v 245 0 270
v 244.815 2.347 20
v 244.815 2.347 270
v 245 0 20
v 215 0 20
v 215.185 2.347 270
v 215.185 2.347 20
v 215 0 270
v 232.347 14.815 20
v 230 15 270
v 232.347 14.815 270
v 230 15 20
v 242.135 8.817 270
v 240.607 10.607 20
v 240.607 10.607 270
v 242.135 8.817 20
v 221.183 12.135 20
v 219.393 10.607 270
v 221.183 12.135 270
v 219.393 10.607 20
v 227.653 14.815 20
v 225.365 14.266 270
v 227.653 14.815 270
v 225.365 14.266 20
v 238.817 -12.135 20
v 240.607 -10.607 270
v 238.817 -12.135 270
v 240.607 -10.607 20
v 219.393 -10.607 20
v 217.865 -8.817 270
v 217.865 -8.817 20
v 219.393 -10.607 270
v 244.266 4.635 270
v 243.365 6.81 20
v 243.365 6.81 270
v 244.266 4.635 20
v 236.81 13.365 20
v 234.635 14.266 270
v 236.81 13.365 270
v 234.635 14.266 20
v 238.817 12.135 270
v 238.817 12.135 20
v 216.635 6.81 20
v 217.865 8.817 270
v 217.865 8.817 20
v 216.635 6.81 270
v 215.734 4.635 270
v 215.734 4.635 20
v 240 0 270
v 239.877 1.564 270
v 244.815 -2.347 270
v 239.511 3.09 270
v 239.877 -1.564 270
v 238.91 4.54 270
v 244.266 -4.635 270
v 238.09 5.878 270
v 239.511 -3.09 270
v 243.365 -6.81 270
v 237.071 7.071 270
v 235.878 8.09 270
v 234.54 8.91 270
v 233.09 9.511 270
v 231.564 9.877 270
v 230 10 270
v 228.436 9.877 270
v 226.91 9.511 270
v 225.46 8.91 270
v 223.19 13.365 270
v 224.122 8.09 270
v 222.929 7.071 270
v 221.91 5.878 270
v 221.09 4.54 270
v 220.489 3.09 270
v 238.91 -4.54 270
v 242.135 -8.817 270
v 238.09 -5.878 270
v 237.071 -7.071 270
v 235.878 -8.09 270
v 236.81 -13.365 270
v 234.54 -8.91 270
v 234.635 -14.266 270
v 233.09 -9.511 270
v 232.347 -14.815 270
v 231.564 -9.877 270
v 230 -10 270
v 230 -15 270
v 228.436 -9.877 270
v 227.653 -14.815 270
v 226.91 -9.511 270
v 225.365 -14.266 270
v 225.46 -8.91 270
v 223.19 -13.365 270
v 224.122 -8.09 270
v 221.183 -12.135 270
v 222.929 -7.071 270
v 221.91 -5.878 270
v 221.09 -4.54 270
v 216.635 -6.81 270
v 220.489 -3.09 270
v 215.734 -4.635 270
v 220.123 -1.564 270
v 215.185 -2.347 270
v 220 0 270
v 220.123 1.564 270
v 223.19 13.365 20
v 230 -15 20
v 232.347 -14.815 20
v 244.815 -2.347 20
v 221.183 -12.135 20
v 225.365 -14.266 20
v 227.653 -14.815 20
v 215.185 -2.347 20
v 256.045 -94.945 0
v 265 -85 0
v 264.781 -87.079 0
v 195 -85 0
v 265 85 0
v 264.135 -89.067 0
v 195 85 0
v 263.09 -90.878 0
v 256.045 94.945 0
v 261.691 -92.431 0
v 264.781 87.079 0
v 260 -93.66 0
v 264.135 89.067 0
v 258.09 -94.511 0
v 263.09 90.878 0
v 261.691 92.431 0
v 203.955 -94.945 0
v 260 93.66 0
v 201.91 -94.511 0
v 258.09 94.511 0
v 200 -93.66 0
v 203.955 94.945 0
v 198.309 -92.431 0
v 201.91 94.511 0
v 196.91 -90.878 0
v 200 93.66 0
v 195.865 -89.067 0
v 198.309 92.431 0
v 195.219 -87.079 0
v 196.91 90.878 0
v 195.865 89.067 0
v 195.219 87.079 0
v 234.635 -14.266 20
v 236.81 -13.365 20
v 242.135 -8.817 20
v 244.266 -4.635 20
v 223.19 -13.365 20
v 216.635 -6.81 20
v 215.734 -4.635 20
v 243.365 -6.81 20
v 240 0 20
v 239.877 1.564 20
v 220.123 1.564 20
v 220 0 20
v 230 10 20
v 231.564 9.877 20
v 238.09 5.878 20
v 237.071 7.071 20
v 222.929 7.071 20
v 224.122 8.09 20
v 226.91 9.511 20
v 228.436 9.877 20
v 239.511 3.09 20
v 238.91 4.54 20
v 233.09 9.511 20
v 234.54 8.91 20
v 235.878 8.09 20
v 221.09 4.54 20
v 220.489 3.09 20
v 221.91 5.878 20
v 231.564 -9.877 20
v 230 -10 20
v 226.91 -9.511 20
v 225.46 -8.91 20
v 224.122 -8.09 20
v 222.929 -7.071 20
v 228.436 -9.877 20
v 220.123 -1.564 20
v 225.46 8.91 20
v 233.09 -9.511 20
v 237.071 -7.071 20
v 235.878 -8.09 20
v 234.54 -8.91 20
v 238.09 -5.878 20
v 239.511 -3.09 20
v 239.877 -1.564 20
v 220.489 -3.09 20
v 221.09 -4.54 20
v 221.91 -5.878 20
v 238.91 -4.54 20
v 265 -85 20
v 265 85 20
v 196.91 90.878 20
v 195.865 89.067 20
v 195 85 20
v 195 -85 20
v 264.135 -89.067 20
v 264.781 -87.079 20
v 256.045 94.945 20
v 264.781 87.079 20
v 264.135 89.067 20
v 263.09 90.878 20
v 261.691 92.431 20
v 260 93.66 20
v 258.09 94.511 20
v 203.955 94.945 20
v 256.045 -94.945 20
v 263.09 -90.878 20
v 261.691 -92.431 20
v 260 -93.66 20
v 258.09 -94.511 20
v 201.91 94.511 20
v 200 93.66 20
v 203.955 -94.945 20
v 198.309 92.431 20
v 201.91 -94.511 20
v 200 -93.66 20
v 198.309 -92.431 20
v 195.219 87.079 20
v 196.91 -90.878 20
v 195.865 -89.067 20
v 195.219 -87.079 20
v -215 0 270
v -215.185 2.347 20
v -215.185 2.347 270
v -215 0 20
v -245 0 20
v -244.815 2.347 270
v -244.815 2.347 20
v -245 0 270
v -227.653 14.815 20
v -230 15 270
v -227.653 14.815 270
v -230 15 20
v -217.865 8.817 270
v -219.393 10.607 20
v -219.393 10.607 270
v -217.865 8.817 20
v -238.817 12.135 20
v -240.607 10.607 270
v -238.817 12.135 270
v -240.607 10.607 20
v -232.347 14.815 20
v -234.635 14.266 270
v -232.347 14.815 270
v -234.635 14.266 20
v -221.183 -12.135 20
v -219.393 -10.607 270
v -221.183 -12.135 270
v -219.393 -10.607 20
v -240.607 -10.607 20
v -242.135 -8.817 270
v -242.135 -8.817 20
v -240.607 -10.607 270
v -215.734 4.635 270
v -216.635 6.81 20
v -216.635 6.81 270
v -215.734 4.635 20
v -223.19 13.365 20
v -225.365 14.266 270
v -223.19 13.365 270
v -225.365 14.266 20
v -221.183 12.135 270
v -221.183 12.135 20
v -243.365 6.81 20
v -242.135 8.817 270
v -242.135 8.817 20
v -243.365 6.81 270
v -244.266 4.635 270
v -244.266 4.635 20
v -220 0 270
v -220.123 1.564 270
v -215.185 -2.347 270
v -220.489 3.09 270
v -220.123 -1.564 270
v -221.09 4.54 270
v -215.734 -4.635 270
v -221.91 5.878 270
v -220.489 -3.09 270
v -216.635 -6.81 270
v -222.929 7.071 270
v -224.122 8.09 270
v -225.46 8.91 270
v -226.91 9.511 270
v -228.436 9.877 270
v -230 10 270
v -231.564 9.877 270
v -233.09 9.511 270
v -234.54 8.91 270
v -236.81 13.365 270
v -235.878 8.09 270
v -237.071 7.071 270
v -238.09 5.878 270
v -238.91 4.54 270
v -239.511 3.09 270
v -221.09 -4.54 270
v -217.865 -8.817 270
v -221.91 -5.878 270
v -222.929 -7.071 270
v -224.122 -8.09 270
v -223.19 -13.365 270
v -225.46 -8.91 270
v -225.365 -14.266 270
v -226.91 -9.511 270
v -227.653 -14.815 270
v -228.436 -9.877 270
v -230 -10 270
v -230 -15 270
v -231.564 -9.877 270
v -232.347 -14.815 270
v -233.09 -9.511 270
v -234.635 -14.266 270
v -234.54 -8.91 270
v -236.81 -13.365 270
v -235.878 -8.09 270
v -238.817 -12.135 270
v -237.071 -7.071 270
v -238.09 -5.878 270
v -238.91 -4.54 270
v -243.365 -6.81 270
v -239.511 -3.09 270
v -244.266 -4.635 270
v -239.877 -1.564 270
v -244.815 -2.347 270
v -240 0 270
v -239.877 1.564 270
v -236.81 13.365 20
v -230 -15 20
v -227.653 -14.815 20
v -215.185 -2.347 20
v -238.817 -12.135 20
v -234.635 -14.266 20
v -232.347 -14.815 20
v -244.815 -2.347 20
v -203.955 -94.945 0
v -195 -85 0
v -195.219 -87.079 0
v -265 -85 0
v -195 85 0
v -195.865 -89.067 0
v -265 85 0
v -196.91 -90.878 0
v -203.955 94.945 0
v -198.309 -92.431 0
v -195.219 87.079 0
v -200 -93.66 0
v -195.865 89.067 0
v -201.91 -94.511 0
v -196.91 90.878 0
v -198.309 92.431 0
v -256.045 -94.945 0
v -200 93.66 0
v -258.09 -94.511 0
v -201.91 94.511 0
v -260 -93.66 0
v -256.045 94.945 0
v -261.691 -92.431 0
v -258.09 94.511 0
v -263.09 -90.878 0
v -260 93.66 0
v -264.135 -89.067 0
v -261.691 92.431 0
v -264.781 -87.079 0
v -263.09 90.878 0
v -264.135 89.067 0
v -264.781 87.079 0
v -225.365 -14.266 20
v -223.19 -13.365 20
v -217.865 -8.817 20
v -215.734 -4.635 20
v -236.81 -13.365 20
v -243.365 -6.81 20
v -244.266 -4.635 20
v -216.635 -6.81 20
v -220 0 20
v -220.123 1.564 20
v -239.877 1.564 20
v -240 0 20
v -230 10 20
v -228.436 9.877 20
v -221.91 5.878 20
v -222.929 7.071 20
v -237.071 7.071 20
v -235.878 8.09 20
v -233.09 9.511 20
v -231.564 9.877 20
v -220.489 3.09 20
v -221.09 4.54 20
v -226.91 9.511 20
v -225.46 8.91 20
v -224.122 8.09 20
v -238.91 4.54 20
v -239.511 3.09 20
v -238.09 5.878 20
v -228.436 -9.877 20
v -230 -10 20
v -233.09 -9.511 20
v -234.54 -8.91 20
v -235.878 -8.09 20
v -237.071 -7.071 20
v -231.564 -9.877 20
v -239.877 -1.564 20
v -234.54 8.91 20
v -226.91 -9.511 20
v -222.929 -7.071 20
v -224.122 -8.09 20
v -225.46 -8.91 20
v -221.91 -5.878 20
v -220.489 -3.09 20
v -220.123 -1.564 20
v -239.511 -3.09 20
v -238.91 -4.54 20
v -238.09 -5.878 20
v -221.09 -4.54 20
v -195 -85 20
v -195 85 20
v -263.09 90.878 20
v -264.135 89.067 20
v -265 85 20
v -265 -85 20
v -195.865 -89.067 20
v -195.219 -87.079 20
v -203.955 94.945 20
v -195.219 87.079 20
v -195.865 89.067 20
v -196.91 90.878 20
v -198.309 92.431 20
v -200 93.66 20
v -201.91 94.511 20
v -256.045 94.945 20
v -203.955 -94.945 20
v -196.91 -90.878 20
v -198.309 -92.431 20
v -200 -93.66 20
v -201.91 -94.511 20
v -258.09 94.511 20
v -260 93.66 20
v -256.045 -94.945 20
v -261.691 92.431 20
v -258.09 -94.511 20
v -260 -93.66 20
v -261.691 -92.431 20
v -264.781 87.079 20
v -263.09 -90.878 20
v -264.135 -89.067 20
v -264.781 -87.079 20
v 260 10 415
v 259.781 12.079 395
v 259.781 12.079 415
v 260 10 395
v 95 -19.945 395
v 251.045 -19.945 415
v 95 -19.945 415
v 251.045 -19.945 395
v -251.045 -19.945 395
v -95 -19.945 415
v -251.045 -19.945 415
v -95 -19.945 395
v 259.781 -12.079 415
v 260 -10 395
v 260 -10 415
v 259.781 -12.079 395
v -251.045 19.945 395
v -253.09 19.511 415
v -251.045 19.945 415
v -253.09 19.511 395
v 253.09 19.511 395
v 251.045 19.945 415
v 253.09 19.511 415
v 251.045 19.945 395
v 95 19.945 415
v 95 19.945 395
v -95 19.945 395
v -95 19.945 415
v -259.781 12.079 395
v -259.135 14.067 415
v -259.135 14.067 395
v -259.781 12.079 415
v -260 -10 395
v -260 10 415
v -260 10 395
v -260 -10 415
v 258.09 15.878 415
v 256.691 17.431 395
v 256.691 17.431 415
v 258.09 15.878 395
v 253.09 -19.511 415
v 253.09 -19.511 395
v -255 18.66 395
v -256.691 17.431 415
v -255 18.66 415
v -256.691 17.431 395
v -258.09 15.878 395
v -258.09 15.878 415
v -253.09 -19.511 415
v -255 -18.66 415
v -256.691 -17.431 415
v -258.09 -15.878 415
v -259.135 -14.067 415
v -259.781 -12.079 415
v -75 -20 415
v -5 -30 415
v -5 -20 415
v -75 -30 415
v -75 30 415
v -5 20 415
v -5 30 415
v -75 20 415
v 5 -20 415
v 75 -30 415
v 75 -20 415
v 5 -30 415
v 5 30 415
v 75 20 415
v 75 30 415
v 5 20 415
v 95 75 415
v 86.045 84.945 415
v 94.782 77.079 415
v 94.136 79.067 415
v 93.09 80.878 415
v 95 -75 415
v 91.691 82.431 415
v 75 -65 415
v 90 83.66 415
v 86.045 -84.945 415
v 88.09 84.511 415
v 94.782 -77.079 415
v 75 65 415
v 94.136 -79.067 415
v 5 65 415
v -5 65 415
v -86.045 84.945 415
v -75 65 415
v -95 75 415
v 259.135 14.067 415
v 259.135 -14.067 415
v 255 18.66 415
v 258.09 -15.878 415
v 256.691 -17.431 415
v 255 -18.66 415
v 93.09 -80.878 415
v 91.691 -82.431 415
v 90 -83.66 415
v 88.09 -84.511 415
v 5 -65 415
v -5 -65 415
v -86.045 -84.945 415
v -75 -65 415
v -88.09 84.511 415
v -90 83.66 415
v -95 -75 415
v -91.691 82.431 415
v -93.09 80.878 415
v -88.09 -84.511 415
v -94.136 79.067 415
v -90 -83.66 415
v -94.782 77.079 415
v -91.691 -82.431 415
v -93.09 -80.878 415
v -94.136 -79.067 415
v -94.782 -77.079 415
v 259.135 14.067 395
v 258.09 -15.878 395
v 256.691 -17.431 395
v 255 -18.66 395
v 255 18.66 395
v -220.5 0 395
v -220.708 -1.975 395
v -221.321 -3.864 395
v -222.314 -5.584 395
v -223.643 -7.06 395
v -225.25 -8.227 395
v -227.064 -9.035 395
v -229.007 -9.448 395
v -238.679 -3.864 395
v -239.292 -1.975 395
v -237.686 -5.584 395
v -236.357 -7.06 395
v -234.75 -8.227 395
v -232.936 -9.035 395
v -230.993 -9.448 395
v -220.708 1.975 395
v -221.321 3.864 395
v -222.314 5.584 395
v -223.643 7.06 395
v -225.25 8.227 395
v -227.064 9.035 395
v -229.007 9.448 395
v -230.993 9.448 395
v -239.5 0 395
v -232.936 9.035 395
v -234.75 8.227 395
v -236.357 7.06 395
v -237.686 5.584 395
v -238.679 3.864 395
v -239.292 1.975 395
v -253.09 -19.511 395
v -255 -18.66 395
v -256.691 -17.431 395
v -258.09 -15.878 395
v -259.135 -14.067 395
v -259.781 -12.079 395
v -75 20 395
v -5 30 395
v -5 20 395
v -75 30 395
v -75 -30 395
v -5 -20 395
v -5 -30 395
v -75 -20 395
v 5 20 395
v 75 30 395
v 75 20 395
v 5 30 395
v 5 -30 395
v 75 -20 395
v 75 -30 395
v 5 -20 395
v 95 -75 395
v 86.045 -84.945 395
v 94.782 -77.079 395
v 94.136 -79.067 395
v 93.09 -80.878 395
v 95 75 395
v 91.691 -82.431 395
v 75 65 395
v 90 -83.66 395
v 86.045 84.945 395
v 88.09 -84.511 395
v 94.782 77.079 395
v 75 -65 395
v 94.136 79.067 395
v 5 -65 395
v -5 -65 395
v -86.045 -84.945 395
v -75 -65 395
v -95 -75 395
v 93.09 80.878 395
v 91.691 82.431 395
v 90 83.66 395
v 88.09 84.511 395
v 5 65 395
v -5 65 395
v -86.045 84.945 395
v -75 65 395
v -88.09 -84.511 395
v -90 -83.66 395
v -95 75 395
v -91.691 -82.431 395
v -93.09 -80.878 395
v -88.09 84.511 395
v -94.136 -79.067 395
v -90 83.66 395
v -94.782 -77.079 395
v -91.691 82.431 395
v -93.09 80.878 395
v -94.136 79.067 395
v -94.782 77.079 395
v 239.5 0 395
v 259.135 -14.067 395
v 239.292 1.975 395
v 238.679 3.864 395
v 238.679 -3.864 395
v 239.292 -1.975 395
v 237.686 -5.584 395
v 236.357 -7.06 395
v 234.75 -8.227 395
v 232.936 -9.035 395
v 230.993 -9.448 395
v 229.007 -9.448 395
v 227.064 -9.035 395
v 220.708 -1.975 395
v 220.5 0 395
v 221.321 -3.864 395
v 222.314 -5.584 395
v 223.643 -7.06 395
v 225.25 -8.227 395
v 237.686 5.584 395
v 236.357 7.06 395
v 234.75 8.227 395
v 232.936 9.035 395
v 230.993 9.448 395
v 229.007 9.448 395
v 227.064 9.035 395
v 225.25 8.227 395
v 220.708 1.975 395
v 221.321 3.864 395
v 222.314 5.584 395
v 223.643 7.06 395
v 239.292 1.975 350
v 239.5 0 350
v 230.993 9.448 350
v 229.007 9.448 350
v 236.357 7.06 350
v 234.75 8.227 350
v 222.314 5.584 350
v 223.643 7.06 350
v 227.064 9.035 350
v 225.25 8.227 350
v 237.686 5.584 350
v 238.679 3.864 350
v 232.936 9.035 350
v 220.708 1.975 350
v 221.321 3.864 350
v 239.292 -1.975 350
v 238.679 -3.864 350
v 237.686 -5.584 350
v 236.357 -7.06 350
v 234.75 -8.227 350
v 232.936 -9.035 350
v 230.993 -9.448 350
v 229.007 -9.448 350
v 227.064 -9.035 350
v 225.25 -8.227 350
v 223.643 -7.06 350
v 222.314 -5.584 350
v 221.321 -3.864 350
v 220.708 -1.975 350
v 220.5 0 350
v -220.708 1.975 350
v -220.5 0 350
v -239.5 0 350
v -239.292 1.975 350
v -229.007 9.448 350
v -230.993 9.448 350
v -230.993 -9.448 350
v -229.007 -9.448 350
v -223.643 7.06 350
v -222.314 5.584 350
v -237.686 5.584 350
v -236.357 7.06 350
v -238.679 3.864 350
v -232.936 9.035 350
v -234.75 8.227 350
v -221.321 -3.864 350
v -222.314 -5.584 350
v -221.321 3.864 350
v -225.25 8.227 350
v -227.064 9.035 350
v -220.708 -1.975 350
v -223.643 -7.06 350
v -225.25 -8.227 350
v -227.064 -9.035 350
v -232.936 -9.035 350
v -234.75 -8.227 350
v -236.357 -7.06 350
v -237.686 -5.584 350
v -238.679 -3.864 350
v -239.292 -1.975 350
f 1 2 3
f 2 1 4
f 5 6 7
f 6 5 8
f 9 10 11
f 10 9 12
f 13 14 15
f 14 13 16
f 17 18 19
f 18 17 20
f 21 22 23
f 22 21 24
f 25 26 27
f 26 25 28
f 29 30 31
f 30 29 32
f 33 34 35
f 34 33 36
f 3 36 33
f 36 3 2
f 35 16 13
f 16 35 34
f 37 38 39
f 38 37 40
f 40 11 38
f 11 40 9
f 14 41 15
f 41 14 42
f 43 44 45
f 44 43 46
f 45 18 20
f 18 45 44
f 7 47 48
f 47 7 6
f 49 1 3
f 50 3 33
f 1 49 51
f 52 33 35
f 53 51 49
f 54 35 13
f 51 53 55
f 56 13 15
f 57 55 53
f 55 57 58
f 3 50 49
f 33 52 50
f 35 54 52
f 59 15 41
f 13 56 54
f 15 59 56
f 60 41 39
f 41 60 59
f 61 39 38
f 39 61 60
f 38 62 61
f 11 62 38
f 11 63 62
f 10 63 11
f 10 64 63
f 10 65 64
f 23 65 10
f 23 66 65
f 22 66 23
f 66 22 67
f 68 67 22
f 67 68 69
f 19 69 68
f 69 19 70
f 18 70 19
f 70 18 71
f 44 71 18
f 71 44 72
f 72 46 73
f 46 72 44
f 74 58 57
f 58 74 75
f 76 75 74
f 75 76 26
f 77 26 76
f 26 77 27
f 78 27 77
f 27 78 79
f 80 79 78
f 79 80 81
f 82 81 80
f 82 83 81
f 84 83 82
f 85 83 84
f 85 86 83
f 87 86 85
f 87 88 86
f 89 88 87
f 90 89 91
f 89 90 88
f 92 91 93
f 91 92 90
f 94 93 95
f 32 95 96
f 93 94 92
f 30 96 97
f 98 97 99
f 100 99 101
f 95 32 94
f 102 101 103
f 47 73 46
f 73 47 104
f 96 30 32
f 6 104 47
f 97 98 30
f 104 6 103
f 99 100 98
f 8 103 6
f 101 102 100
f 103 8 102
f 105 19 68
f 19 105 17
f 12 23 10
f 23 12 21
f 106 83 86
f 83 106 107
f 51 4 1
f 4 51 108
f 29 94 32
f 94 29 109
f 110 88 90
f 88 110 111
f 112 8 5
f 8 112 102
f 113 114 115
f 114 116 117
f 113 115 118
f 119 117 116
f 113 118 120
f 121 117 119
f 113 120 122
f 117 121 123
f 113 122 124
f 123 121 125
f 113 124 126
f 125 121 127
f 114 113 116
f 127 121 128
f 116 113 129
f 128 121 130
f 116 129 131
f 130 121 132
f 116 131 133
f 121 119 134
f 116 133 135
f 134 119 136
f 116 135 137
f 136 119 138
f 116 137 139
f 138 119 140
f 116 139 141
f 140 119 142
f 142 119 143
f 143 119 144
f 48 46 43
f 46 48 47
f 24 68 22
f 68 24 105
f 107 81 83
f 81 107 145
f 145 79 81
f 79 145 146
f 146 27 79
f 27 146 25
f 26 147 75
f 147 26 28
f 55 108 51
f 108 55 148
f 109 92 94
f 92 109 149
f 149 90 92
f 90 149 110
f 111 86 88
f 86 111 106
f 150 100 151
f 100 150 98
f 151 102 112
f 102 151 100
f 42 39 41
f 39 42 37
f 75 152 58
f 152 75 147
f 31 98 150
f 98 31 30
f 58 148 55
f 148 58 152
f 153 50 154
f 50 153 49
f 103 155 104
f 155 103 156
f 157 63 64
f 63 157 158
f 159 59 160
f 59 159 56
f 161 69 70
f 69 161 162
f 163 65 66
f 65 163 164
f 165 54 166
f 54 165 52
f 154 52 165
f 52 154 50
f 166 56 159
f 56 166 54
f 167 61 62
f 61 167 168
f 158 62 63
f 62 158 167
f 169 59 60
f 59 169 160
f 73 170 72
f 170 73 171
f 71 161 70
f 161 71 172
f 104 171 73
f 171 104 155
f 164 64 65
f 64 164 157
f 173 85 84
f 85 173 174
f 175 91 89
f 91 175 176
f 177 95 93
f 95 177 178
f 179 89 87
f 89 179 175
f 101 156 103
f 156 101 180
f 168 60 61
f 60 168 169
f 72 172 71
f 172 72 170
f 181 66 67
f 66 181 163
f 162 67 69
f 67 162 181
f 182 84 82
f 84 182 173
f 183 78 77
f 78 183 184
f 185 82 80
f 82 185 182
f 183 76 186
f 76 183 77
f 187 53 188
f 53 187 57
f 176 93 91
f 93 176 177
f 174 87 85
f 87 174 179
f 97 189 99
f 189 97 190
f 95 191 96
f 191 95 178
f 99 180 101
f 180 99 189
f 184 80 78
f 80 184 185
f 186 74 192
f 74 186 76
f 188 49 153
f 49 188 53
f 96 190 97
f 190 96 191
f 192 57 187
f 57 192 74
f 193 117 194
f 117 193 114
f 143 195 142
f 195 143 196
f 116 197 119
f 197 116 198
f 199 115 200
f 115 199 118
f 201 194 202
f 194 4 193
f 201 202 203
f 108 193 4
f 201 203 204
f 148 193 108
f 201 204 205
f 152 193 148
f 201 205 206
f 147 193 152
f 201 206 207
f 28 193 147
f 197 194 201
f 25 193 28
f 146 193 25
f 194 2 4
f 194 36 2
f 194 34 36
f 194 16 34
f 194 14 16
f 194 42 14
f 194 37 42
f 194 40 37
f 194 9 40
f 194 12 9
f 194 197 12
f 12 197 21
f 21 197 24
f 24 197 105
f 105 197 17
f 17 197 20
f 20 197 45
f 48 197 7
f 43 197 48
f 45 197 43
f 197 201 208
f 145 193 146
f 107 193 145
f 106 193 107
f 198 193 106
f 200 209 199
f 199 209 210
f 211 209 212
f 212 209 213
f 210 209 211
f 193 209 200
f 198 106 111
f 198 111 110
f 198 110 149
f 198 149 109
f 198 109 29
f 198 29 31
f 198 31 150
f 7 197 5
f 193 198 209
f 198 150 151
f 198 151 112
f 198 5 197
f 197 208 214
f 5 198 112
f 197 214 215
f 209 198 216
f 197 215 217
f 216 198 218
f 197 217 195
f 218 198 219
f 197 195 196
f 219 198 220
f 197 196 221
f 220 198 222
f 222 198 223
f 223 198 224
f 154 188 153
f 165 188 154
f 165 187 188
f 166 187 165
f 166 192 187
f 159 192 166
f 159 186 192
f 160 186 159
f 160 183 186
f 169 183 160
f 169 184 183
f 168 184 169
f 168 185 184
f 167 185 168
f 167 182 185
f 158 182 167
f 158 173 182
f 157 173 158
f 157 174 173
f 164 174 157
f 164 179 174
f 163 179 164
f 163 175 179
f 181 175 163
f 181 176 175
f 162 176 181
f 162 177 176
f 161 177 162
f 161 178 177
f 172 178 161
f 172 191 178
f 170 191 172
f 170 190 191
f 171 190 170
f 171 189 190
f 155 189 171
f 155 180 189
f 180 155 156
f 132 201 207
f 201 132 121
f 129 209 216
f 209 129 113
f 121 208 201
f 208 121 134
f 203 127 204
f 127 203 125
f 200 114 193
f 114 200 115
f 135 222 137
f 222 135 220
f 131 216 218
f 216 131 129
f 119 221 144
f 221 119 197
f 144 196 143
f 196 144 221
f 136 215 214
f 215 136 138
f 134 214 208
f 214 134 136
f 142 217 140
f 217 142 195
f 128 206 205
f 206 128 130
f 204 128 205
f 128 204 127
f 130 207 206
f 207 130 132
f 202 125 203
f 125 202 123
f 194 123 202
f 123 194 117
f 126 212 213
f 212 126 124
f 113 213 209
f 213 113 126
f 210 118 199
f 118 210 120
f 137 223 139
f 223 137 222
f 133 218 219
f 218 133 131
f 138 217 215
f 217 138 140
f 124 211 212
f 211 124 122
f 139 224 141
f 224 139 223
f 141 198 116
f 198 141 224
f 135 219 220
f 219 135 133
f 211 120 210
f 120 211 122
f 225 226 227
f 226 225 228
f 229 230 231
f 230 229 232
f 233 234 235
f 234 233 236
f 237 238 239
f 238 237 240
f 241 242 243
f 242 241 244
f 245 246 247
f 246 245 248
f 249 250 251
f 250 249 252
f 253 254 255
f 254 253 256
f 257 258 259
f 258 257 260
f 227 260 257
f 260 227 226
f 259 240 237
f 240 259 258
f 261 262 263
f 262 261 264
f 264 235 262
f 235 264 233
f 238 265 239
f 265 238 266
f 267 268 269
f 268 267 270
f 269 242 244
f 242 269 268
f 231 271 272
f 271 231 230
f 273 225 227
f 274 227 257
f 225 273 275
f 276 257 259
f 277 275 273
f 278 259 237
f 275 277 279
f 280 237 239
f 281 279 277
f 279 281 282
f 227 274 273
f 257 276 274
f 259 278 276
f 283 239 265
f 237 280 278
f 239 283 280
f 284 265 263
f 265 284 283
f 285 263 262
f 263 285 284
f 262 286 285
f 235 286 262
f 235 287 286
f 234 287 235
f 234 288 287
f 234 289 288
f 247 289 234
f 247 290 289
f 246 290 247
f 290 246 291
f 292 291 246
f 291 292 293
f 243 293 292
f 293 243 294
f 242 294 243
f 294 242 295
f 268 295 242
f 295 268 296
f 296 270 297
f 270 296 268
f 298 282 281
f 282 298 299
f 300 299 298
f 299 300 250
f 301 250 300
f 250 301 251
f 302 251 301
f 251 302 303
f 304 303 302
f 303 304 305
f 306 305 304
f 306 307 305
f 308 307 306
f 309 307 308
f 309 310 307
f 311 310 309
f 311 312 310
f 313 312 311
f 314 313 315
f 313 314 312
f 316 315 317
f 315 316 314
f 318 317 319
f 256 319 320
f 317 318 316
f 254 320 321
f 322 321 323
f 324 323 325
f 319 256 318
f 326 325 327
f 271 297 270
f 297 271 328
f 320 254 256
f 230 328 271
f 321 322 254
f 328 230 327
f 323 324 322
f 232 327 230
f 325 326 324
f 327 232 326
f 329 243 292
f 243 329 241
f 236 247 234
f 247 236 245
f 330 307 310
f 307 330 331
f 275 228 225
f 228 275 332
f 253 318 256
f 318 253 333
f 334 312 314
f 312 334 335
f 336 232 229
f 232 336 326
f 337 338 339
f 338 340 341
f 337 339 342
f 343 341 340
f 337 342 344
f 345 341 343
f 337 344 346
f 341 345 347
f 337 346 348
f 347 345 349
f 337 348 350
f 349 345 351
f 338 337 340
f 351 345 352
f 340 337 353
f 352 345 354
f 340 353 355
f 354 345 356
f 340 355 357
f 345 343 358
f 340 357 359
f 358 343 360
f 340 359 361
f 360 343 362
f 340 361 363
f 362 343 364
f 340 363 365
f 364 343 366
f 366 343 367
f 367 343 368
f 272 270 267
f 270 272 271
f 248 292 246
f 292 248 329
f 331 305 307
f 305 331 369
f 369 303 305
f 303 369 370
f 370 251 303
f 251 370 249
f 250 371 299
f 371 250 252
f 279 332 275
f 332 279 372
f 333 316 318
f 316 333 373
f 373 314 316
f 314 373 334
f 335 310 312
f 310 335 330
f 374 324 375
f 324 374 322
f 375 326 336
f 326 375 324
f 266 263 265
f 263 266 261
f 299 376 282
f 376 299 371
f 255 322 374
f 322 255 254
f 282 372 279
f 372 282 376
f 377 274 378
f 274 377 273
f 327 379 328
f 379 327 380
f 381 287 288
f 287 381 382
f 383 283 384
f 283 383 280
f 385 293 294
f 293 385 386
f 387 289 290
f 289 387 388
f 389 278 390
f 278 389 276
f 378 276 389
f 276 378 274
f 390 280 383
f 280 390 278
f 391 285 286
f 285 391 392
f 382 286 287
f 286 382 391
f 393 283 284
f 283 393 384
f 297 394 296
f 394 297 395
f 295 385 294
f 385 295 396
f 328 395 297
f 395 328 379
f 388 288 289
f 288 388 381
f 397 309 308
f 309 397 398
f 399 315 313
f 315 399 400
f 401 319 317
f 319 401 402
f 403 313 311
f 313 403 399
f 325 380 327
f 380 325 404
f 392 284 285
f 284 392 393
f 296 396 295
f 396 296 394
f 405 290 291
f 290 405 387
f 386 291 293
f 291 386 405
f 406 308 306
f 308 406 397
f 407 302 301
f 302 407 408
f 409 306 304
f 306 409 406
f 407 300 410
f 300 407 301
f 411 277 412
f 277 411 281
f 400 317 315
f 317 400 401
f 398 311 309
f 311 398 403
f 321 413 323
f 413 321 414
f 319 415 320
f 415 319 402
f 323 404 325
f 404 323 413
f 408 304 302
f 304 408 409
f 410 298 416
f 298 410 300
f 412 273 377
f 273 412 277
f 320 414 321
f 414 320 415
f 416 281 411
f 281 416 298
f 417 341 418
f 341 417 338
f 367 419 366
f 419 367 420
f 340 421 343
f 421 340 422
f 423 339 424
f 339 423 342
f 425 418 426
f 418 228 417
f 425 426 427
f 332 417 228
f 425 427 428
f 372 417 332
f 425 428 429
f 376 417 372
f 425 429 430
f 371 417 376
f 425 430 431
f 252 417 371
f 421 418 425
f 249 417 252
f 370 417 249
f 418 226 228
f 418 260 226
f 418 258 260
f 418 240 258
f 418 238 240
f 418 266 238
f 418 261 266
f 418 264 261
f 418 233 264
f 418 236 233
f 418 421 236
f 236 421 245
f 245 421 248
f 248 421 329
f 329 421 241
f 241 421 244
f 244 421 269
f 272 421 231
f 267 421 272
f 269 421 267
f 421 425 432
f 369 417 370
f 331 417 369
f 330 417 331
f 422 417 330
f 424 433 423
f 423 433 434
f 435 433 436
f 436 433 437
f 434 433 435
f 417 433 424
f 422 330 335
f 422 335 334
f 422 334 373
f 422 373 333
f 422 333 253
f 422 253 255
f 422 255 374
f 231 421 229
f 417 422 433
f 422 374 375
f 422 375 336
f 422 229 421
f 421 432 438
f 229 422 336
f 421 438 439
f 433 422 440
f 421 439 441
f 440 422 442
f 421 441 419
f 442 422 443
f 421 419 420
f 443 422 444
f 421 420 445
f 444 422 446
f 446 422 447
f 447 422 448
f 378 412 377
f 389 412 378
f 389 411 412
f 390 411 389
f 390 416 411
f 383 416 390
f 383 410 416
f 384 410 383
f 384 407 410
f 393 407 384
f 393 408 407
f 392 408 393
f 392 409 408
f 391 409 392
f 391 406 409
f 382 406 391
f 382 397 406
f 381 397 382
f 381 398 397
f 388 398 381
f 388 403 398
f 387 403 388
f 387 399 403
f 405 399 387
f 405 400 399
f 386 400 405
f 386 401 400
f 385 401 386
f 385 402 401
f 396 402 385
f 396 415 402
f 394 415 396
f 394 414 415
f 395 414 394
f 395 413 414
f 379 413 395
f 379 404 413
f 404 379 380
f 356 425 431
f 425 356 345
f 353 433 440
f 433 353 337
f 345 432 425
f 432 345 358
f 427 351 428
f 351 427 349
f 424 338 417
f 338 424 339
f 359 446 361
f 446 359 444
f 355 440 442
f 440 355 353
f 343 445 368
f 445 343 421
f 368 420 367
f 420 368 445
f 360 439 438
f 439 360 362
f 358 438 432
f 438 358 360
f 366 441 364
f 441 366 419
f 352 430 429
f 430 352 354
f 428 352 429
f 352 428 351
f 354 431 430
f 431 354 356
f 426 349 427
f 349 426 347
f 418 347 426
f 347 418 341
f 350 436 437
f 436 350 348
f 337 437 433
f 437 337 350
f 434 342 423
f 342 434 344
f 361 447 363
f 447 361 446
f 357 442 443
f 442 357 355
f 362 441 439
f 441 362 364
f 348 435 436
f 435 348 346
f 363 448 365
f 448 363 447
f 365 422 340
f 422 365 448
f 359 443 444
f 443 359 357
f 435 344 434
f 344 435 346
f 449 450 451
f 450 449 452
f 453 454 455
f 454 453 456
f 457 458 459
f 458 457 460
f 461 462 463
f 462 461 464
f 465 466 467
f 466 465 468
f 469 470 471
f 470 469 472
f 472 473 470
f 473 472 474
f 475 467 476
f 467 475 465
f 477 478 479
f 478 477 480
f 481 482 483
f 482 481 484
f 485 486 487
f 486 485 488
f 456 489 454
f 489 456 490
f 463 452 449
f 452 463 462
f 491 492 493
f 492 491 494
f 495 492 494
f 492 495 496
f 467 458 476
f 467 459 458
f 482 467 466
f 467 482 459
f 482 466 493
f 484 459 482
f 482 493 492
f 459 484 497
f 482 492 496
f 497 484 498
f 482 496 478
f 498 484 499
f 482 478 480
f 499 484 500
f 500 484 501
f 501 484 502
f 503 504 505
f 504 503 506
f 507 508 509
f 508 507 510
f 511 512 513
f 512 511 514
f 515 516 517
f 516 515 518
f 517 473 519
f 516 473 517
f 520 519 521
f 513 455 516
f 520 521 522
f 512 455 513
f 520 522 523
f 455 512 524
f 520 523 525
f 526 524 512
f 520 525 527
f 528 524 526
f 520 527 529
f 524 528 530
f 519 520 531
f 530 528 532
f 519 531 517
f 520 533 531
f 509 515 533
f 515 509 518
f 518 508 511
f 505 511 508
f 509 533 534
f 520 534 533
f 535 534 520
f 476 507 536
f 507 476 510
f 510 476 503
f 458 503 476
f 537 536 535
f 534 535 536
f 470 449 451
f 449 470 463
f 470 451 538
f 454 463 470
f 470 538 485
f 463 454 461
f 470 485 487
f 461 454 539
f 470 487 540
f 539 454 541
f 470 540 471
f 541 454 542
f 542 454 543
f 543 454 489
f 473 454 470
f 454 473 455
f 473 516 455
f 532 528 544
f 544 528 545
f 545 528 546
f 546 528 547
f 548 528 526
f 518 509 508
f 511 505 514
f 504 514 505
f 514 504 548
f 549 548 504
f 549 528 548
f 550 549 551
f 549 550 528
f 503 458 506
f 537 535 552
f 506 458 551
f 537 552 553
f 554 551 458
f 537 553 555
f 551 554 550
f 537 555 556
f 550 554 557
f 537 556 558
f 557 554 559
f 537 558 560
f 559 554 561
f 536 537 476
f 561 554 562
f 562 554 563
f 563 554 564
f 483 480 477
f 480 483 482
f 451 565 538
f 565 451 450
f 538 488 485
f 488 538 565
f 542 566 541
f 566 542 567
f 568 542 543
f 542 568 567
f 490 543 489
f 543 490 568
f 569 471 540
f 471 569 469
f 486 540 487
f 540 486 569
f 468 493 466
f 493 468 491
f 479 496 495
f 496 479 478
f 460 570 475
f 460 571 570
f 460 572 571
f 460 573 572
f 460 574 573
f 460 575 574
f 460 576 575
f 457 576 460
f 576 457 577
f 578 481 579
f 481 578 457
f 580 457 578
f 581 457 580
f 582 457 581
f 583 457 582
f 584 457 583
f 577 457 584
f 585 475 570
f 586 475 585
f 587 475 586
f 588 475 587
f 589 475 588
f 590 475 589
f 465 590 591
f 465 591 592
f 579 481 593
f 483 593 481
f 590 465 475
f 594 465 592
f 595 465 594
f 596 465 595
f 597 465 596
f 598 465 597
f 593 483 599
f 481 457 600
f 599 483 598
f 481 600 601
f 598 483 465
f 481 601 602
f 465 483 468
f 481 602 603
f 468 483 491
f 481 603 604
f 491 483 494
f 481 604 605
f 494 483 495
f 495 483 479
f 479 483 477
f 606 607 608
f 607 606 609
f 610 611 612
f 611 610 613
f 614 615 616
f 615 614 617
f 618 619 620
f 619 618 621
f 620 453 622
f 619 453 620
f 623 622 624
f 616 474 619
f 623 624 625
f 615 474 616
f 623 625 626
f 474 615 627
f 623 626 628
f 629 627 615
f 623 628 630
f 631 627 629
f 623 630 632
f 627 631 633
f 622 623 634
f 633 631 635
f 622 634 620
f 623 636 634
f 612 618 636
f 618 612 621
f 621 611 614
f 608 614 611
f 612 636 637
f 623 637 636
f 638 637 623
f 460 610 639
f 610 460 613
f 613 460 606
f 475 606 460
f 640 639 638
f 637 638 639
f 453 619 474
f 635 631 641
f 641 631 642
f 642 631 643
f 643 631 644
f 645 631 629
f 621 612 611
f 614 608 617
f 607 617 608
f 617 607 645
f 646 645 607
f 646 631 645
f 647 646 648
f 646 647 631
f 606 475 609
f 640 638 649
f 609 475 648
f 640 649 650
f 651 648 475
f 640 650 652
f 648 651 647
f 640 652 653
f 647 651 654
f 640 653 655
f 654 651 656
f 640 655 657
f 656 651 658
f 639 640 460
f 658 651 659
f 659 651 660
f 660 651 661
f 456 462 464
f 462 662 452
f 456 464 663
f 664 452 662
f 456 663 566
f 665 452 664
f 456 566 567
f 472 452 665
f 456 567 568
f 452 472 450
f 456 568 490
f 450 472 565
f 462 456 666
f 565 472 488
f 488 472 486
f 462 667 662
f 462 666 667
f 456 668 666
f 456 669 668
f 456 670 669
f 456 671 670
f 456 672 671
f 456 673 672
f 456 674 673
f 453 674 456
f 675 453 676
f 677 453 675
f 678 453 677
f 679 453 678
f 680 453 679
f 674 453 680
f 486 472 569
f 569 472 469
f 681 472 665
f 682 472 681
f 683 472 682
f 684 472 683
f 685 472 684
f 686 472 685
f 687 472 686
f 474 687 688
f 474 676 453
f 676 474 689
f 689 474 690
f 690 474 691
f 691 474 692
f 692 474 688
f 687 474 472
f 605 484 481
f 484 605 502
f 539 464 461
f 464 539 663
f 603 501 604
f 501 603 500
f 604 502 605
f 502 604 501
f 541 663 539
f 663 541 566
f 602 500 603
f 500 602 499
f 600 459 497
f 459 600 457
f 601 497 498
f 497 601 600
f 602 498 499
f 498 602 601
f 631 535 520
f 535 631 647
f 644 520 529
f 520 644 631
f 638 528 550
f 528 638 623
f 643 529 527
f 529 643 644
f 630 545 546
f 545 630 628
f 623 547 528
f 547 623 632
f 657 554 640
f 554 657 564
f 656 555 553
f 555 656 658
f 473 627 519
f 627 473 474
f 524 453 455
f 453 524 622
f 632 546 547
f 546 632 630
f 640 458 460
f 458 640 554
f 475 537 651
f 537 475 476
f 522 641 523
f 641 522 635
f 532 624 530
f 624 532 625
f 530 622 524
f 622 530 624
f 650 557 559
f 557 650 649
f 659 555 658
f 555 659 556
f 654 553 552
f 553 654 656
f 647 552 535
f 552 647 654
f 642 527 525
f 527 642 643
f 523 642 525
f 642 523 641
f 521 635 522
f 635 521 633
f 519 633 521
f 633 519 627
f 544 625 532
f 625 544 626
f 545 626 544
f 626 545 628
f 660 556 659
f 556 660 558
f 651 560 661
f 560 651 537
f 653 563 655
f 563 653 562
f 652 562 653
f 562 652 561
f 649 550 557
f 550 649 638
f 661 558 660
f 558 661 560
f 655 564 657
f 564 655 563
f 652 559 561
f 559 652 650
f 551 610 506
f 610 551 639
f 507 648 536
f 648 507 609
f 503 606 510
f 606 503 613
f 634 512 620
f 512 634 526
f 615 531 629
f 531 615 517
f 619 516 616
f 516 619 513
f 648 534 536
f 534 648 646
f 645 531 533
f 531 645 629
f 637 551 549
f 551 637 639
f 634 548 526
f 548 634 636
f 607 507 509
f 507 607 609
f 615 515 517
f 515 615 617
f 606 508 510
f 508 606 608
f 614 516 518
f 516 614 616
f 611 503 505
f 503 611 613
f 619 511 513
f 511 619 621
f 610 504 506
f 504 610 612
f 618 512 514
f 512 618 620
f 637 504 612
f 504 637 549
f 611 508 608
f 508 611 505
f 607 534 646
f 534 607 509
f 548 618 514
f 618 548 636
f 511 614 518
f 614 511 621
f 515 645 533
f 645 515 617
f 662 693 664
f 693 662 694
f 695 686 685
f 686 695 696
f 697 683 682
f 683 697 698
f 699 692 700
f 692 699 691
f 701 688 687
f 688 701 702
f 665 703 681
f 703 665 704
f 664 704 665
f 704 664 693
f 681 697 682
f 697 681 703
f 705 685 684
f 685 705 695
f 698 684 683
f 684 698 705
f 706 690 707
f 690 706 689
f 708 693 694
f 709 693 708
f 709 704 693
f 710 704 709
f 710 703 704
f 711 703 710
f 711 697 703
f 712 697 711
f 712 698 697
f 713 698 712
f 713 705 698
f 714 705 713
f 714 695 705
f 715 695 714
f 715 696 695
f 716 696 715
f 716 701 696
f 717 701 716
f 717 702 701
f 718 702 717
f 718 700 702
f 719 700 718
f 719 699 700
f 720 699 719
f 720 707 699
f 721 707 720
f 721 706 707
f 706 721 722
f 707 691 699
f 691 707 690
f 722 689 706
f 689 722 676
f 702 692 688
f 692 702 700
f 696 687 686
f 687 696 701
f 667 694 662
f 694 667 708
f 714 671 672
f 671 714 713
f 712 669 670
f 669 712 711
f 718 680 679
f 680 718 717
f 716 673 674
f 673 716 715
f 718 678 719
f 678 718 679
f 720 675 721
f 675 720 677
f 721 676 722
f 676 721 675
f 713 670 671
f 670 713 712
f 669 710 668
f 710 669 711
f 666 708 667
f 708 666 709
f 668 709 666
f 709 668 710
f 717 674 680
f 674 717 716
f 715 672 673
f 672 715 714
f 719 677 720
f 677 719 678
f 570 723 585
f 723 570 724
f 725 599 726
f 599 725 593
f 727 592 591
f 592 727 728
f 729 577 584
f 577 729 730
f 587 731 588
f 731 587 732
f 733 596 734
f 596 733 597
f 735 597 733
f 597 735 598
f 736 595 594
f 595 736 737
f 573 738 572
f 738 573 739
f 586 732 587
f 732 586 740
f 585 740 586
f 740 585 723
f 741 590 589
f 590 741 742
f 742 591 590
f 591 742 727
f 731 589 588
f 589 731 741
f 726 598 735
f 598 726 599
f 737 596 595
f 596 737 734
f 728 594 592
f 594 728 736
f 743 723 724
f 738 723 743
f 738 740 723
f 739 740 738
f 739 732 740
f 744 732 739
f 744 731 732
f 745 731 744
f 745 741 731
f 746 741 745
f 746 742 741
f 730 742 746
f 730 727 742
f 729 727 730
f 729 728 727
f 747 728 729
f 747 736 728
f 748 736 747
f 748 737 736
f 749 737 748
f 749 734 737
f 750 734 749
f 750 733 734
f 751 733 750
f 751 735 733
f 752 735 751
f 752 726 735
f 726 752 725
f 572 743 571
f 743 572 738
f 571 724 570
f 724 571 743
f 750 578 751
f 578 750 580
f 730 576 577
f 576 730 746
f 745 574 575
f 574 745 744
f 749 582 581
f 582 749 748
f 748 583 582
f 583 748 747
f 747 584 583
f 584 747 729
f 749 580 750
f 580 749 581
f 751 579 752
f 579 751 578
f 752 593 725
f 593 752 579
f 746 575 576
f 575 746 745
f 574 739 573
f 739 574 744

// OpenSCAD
// eyeStand design, 5th April 2020




color("orange")
{
    translate([230,0,0])
        Base_stand();
    translate([-230,0,0])
        Base_stand();
   
}   

color("green")
{
    translate([0,0,400])
        UpperBody();
}


module Base_stand()
{
    
  depth = 170;
    foot_breadth = 50;
    foot_height = 10;
  cylinder_height=270;
    union(){
            
      difference()
        {
                cylinder(r = 15, h = cylinder_height, $fn = 40);
                cylinder(r = 10, h = 2*cylinder_height + 1, $fn = 40 ,center=true);
        }
        
        translate([-foot_breadth/2,-depth/2,0])
            minkowski()
            {
                cube([foot_breadth,depth,foot_height], center=false);
                cylinder(r=10, h = foot_height);
            }
            
    }
}

module UpperBody()
{
    
    union()
    {       
           difference()
            {
                  
               union()
               {
                    minkowski()
                    { 
                        cube([500,20,10],center = true);
                        cylinder(r=10, h = 10);
                    }
                    minkowski()
                    { 
                        cube([170,150,10],center = true);
                        cylinder(r=10, h = 10);
                    }
                    
               }
               
                union()
                {  wdepth = 70;
                    wbredth = 70;
                   // translate([wdepth,wbredth])
                       cube([150,130,50],center=true);
                }
            }
            
    translate([0,25,5])
        cube([165,10,20],center=true);
    translate([0,-25,5])
        cube([165,10,20],center=true);
     translate([0,0,5])
            cube([10,155,20],center=true);
            
            
     translate([230,0,-50])
            cylinder(r=9.5, h = 50);
     translate([-230,0,-50])
            cylinder(r=9.5, h = 50);
            
            
    }
}






echo(version=version());
// Written in 2020 by Mukesh and Nihar

// To the extent possible under law, the author(s) have dedicated all
// copyright and related and neighboring rights to this software to the
// public domain worldwide. This software is distributed without any
// warranty.
//
// You should have received a copy of the CC0 Public Domain
// Dedication along with this software.
// If not, see <http://creativecommons.org/publicdomain/zero/1.0/>.
